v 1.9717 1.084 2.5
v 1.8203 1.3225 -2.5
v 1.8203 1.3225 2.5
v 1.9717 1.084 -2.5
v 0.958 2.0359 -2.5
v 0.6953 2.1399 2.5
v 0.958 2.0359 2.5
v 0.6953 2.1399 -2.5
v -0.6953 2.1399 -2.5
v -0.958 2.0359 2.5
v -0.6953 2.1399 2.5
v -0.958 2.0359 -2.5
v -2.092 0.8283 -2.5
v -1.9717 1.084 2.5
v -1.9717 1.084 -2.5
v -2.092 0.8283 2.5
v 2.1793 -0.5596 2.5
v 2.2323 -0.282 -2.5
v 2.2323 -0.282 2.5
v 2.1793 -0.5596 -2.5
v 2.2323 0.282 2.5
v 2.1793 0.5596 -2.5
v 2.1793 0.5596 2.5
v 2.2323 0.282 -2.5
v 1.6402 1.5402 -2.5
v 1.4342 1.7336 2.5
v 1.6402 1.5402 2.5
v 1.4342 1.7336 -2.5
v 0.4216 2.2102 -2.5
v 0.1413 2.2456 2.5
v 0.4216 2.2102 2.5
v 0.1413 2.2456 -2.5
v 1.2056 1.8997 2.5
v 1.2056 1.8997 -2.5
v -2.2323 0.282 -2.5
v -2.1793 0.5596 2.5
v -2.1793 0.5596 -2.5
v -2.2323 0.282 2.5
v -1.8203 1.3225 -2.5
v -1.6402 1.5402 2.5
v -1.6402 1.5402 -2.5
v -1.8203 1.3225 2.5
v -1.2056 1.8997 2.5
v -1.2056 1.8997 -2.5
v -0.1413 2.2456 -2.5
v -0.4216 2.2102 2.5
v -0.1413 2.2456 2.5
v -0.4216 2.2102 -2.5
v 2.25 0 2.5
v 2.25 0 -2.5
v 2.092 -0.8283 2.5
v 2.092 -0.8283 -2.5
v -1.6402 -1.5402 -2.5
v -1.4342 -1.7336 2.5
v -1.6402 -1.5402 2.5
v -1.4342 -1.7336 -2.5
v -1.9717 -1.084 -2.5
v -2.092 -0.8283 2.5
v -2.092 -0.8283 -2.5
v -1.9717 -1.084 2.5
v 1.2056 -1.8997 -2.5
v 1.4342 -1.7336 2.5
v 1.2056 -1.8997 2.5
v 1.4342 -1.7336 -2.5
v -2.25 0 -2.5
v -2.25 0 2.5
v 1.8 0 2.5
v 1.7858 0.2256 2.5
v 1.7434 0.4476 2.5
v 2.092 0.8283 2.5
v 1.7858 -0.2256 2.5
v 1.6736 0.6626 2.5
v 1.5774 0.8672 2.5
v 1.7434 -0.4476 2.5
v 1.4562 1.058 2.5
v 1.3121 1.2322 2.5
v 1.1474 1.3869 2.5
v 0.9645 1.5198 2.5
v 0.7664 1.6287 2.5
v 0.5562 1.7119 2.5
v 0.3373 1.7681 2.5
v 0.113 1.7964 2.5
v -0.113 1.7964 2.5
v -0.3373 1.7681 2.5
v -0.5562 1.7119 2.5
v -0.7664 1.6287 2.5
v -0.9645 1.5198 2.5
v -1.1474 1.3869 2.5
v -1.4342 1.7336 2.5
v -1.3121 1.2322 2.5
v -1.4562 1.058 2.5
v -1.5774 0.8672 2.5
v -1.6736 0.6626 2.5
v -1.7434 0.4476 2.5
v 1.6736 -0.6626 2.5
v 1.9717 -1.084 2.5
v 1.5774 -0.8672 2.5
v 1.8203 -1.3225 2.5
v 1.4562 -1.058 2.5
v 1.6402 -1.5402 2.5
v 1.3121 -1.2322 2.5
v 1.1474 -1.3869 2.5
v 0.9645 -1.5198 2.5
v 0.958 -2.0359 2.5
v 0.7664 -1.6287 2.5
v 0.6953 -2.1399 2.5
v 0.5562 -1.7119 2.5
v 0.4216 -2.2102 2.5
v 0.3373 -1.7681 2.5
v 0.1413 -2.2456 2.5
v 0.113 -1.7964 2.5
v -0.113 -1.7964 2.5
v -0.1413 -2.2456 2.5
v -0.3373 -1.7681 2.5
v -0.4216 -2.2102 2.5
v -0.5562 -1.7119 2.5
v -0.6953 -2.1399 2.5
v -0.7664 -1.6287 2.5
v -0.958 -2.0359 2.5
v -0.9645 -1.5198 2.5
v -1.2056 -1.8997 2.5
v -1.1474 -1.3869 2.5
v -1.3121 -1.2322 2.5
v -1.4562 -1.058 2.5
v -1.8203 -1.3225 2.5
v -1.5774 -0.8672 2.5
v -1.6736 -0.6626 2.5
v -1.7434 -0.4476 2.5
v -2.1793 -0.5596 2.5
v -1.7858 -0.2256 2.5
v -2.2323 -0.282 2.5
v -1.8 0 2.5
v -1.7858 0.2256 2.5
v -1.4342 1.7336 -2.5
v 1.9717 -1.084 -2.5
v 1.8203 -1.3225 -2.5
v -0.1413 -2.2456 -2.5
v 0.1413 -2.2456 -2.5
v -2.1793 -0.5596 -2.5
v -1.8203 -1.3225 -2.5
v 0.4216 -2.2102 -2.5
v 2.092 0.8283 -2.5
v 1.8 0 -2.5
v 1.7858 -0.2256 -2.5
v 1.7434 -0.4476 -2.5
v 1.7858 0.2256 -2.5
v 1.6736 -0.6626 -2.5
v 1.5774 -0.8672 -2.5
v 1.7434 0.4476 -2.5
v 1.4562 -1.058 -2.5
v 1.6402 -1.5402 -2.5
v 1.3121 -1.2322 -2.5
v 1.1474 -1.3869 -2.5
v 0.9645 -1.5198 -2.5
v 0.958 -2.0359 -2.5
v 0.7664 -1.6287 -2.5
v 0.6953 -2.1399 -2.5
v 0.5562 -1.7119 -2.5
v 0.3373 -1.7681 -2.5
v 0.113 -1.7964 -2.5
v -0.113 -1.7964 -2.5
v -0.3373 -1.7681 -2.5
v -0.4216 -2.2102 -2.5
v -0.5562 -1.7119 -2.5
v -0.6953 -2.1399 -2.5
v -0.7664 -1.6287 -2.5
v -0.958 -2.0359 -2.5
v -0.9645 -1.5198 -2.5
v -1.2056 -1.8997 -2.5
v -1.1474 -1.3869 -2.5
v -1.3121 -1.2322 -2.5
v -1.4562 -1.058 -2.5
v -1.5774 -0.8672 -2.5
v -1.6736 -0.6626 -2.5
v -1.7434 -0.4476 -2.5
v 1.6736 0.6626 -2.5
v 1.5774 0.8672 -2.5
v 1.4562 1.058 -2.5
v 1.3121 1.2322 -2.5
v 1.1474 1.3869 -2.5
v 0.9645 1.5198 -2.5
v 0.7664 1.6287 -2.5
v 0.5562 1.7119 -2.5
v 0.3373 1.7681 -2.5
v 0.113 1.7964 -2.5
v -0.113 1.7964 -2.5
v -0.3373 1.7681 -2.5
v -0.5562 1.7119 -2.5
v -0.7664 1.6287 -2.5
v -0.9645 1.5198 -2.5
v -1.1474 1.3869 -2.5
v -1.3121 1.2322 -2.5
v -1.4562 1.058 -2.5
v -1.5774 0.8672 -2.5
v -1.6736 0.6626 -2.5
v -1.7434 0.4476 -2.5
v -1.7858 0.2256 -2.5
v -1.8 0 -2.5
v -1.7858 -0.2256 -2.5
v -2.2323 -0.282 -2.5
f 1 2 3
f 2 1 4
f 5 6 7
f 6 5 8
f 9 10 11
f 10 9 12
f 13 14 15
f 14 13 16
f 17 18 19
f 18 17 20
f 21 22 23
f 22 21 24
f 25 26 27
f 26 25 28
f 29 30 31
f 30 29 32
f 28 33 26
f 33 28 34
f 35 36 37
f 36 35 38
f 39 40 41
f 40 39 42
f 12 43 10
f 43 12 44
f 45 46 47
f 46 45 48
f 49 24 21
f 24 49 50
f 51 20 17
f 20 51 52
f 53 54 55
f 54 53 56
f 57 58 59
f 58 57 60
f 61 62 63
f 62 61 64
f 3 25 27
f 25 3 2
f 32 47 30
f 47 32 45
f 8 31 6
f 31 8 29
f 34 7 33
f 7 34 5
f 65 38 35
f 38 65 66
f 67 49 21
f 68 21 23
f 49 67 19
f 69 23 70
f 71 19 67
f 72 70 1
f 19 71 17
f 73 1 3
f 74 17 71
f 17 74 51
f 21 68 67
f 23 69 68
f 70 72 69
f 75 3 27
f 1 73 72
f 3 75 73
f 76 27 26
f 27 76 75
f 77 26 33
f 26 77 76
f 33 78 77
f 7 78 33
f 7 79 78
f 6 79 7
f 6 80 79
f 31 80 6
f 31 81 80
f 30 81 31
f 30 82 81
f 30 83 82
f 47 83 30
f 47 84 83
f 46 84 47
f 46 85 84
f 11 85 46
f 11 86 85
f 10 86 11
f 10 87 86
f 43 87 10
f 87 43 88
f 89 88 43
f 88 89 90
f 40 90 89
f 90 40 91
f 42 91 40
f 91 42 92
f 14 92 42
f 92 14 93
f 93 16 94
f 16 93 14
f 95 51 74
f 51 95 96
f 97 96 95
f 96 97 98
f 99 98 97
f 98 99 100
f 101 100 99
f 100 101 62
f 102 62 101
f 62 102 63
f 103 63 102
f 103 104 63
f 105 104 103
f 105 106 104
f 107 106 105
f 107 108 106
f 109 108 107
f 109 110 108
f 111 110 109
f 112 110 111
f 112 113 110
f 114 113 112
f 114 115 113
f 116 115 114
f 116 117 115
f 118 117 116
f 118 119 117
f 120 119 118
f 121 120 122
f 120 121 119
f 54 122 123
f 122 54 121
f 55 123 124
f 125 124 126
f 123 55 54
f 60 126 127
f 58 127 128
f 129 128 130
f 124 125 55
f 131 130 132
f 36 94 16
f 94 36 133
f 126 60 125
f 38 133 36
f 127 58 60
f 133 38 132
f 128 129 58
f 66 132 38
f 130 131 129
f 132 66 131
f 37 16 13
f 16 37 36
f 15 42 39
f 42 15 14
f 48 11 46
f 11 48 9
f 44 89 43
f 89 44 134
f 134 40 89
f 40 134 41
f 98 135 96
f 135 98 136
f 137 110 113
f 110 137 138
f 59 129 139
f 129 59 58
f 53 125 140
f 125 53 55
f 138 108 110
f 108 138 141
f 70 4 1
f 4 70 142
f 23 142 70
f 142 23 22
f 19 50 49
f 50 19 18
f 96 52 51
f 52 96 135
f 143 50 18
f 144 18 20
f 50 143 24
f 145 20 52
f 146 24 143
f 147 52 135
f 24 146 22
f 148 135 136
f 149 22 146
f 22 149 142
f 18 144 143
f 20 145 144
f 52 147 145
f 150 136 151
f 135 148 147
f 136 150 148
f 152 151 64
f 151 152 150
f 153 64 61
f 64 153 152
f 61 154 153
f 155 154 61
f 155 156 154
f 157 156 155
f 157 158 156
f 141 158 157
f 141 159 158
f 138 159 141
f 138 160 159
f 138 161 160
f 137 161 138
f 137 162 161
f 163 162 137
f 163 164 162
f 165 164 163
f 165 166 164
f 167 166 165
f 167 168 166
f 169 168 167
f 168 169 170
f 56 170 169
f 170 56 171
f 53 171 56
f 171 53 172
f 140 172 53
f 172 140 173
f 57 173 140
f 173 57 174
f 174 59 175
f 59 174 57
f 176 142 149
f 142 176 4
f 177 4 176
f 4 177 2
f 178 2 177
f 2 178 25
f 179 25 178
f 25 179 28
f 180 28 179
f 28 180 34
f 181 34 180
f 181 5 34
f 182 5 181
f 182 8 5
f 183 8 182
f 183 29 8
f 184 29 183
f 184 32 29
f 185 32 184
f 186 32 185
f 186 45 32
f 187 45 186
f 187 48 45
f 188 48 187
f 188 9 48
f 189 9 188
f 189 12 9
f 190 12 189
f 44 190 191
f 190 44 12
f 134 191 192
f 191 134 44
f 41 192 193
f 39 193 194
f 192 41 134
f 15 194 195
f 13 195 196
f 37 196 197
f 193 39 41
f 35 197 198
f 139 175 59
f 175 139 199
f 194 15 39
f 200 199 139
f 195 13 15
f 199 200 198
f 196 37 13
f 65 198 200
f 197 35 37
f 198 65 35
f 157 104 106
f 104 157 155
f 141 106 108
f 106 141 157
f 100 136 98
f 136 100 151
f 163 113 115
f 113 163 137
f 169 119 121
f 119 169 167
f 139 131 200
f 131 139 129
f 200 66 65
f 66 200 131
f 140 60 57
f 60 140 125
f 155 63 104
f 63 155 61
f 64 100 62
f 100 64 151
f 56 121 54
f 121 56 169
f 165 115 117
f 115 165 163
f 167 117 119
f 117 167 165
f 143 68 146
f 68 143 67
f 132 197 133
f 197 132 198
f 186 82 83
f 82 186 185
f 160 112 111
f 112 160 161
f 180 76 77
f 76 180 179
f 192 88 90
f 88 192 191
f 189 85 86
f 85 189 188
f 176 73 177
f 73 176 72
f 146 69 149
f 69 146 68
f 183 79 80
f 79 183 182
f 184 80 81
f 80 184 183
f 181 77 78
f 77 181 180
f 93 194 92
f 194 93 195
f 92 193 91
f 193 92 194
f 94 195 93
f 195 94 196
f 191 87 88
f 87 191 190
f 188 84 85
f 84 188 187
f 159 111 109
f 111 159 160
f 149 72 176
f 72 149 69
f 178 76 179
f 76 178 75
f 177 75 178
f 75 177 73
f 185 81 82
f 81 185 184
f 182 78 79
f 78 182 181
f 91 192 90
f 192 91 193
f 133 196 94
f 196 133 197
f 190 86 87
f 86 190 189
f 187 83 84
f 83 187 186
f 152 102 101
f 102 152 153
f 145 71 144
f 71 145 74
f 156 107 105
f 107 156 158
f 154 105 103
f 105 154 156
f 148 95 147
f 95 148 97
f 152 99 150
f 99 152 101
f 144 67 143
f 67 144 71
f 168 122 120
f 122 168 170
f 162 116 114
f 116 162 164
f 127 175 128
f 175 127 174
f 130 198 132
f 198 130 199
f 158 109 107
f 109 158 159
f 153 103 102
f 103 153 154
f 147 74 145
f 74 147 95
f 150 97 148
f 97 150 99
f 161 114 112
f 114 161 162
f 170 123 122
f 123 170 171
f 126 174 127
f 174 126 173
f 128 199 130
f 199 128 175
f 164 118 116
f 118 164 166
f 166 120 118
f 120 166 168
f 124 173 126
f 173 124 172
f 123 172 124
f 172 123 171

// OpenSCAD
$fn = 50;


difference() {
	union() {
		translate(v = [0, 0, -2.5000000000]) {
			cylinder(h = 5, r = 2.2500000000);
		}
	}
	union() {
		translate(v = [0, 0, -100.0000000000]) {
			cylinder(h = 200, r = 1.8000000000);
		}
	}
}
